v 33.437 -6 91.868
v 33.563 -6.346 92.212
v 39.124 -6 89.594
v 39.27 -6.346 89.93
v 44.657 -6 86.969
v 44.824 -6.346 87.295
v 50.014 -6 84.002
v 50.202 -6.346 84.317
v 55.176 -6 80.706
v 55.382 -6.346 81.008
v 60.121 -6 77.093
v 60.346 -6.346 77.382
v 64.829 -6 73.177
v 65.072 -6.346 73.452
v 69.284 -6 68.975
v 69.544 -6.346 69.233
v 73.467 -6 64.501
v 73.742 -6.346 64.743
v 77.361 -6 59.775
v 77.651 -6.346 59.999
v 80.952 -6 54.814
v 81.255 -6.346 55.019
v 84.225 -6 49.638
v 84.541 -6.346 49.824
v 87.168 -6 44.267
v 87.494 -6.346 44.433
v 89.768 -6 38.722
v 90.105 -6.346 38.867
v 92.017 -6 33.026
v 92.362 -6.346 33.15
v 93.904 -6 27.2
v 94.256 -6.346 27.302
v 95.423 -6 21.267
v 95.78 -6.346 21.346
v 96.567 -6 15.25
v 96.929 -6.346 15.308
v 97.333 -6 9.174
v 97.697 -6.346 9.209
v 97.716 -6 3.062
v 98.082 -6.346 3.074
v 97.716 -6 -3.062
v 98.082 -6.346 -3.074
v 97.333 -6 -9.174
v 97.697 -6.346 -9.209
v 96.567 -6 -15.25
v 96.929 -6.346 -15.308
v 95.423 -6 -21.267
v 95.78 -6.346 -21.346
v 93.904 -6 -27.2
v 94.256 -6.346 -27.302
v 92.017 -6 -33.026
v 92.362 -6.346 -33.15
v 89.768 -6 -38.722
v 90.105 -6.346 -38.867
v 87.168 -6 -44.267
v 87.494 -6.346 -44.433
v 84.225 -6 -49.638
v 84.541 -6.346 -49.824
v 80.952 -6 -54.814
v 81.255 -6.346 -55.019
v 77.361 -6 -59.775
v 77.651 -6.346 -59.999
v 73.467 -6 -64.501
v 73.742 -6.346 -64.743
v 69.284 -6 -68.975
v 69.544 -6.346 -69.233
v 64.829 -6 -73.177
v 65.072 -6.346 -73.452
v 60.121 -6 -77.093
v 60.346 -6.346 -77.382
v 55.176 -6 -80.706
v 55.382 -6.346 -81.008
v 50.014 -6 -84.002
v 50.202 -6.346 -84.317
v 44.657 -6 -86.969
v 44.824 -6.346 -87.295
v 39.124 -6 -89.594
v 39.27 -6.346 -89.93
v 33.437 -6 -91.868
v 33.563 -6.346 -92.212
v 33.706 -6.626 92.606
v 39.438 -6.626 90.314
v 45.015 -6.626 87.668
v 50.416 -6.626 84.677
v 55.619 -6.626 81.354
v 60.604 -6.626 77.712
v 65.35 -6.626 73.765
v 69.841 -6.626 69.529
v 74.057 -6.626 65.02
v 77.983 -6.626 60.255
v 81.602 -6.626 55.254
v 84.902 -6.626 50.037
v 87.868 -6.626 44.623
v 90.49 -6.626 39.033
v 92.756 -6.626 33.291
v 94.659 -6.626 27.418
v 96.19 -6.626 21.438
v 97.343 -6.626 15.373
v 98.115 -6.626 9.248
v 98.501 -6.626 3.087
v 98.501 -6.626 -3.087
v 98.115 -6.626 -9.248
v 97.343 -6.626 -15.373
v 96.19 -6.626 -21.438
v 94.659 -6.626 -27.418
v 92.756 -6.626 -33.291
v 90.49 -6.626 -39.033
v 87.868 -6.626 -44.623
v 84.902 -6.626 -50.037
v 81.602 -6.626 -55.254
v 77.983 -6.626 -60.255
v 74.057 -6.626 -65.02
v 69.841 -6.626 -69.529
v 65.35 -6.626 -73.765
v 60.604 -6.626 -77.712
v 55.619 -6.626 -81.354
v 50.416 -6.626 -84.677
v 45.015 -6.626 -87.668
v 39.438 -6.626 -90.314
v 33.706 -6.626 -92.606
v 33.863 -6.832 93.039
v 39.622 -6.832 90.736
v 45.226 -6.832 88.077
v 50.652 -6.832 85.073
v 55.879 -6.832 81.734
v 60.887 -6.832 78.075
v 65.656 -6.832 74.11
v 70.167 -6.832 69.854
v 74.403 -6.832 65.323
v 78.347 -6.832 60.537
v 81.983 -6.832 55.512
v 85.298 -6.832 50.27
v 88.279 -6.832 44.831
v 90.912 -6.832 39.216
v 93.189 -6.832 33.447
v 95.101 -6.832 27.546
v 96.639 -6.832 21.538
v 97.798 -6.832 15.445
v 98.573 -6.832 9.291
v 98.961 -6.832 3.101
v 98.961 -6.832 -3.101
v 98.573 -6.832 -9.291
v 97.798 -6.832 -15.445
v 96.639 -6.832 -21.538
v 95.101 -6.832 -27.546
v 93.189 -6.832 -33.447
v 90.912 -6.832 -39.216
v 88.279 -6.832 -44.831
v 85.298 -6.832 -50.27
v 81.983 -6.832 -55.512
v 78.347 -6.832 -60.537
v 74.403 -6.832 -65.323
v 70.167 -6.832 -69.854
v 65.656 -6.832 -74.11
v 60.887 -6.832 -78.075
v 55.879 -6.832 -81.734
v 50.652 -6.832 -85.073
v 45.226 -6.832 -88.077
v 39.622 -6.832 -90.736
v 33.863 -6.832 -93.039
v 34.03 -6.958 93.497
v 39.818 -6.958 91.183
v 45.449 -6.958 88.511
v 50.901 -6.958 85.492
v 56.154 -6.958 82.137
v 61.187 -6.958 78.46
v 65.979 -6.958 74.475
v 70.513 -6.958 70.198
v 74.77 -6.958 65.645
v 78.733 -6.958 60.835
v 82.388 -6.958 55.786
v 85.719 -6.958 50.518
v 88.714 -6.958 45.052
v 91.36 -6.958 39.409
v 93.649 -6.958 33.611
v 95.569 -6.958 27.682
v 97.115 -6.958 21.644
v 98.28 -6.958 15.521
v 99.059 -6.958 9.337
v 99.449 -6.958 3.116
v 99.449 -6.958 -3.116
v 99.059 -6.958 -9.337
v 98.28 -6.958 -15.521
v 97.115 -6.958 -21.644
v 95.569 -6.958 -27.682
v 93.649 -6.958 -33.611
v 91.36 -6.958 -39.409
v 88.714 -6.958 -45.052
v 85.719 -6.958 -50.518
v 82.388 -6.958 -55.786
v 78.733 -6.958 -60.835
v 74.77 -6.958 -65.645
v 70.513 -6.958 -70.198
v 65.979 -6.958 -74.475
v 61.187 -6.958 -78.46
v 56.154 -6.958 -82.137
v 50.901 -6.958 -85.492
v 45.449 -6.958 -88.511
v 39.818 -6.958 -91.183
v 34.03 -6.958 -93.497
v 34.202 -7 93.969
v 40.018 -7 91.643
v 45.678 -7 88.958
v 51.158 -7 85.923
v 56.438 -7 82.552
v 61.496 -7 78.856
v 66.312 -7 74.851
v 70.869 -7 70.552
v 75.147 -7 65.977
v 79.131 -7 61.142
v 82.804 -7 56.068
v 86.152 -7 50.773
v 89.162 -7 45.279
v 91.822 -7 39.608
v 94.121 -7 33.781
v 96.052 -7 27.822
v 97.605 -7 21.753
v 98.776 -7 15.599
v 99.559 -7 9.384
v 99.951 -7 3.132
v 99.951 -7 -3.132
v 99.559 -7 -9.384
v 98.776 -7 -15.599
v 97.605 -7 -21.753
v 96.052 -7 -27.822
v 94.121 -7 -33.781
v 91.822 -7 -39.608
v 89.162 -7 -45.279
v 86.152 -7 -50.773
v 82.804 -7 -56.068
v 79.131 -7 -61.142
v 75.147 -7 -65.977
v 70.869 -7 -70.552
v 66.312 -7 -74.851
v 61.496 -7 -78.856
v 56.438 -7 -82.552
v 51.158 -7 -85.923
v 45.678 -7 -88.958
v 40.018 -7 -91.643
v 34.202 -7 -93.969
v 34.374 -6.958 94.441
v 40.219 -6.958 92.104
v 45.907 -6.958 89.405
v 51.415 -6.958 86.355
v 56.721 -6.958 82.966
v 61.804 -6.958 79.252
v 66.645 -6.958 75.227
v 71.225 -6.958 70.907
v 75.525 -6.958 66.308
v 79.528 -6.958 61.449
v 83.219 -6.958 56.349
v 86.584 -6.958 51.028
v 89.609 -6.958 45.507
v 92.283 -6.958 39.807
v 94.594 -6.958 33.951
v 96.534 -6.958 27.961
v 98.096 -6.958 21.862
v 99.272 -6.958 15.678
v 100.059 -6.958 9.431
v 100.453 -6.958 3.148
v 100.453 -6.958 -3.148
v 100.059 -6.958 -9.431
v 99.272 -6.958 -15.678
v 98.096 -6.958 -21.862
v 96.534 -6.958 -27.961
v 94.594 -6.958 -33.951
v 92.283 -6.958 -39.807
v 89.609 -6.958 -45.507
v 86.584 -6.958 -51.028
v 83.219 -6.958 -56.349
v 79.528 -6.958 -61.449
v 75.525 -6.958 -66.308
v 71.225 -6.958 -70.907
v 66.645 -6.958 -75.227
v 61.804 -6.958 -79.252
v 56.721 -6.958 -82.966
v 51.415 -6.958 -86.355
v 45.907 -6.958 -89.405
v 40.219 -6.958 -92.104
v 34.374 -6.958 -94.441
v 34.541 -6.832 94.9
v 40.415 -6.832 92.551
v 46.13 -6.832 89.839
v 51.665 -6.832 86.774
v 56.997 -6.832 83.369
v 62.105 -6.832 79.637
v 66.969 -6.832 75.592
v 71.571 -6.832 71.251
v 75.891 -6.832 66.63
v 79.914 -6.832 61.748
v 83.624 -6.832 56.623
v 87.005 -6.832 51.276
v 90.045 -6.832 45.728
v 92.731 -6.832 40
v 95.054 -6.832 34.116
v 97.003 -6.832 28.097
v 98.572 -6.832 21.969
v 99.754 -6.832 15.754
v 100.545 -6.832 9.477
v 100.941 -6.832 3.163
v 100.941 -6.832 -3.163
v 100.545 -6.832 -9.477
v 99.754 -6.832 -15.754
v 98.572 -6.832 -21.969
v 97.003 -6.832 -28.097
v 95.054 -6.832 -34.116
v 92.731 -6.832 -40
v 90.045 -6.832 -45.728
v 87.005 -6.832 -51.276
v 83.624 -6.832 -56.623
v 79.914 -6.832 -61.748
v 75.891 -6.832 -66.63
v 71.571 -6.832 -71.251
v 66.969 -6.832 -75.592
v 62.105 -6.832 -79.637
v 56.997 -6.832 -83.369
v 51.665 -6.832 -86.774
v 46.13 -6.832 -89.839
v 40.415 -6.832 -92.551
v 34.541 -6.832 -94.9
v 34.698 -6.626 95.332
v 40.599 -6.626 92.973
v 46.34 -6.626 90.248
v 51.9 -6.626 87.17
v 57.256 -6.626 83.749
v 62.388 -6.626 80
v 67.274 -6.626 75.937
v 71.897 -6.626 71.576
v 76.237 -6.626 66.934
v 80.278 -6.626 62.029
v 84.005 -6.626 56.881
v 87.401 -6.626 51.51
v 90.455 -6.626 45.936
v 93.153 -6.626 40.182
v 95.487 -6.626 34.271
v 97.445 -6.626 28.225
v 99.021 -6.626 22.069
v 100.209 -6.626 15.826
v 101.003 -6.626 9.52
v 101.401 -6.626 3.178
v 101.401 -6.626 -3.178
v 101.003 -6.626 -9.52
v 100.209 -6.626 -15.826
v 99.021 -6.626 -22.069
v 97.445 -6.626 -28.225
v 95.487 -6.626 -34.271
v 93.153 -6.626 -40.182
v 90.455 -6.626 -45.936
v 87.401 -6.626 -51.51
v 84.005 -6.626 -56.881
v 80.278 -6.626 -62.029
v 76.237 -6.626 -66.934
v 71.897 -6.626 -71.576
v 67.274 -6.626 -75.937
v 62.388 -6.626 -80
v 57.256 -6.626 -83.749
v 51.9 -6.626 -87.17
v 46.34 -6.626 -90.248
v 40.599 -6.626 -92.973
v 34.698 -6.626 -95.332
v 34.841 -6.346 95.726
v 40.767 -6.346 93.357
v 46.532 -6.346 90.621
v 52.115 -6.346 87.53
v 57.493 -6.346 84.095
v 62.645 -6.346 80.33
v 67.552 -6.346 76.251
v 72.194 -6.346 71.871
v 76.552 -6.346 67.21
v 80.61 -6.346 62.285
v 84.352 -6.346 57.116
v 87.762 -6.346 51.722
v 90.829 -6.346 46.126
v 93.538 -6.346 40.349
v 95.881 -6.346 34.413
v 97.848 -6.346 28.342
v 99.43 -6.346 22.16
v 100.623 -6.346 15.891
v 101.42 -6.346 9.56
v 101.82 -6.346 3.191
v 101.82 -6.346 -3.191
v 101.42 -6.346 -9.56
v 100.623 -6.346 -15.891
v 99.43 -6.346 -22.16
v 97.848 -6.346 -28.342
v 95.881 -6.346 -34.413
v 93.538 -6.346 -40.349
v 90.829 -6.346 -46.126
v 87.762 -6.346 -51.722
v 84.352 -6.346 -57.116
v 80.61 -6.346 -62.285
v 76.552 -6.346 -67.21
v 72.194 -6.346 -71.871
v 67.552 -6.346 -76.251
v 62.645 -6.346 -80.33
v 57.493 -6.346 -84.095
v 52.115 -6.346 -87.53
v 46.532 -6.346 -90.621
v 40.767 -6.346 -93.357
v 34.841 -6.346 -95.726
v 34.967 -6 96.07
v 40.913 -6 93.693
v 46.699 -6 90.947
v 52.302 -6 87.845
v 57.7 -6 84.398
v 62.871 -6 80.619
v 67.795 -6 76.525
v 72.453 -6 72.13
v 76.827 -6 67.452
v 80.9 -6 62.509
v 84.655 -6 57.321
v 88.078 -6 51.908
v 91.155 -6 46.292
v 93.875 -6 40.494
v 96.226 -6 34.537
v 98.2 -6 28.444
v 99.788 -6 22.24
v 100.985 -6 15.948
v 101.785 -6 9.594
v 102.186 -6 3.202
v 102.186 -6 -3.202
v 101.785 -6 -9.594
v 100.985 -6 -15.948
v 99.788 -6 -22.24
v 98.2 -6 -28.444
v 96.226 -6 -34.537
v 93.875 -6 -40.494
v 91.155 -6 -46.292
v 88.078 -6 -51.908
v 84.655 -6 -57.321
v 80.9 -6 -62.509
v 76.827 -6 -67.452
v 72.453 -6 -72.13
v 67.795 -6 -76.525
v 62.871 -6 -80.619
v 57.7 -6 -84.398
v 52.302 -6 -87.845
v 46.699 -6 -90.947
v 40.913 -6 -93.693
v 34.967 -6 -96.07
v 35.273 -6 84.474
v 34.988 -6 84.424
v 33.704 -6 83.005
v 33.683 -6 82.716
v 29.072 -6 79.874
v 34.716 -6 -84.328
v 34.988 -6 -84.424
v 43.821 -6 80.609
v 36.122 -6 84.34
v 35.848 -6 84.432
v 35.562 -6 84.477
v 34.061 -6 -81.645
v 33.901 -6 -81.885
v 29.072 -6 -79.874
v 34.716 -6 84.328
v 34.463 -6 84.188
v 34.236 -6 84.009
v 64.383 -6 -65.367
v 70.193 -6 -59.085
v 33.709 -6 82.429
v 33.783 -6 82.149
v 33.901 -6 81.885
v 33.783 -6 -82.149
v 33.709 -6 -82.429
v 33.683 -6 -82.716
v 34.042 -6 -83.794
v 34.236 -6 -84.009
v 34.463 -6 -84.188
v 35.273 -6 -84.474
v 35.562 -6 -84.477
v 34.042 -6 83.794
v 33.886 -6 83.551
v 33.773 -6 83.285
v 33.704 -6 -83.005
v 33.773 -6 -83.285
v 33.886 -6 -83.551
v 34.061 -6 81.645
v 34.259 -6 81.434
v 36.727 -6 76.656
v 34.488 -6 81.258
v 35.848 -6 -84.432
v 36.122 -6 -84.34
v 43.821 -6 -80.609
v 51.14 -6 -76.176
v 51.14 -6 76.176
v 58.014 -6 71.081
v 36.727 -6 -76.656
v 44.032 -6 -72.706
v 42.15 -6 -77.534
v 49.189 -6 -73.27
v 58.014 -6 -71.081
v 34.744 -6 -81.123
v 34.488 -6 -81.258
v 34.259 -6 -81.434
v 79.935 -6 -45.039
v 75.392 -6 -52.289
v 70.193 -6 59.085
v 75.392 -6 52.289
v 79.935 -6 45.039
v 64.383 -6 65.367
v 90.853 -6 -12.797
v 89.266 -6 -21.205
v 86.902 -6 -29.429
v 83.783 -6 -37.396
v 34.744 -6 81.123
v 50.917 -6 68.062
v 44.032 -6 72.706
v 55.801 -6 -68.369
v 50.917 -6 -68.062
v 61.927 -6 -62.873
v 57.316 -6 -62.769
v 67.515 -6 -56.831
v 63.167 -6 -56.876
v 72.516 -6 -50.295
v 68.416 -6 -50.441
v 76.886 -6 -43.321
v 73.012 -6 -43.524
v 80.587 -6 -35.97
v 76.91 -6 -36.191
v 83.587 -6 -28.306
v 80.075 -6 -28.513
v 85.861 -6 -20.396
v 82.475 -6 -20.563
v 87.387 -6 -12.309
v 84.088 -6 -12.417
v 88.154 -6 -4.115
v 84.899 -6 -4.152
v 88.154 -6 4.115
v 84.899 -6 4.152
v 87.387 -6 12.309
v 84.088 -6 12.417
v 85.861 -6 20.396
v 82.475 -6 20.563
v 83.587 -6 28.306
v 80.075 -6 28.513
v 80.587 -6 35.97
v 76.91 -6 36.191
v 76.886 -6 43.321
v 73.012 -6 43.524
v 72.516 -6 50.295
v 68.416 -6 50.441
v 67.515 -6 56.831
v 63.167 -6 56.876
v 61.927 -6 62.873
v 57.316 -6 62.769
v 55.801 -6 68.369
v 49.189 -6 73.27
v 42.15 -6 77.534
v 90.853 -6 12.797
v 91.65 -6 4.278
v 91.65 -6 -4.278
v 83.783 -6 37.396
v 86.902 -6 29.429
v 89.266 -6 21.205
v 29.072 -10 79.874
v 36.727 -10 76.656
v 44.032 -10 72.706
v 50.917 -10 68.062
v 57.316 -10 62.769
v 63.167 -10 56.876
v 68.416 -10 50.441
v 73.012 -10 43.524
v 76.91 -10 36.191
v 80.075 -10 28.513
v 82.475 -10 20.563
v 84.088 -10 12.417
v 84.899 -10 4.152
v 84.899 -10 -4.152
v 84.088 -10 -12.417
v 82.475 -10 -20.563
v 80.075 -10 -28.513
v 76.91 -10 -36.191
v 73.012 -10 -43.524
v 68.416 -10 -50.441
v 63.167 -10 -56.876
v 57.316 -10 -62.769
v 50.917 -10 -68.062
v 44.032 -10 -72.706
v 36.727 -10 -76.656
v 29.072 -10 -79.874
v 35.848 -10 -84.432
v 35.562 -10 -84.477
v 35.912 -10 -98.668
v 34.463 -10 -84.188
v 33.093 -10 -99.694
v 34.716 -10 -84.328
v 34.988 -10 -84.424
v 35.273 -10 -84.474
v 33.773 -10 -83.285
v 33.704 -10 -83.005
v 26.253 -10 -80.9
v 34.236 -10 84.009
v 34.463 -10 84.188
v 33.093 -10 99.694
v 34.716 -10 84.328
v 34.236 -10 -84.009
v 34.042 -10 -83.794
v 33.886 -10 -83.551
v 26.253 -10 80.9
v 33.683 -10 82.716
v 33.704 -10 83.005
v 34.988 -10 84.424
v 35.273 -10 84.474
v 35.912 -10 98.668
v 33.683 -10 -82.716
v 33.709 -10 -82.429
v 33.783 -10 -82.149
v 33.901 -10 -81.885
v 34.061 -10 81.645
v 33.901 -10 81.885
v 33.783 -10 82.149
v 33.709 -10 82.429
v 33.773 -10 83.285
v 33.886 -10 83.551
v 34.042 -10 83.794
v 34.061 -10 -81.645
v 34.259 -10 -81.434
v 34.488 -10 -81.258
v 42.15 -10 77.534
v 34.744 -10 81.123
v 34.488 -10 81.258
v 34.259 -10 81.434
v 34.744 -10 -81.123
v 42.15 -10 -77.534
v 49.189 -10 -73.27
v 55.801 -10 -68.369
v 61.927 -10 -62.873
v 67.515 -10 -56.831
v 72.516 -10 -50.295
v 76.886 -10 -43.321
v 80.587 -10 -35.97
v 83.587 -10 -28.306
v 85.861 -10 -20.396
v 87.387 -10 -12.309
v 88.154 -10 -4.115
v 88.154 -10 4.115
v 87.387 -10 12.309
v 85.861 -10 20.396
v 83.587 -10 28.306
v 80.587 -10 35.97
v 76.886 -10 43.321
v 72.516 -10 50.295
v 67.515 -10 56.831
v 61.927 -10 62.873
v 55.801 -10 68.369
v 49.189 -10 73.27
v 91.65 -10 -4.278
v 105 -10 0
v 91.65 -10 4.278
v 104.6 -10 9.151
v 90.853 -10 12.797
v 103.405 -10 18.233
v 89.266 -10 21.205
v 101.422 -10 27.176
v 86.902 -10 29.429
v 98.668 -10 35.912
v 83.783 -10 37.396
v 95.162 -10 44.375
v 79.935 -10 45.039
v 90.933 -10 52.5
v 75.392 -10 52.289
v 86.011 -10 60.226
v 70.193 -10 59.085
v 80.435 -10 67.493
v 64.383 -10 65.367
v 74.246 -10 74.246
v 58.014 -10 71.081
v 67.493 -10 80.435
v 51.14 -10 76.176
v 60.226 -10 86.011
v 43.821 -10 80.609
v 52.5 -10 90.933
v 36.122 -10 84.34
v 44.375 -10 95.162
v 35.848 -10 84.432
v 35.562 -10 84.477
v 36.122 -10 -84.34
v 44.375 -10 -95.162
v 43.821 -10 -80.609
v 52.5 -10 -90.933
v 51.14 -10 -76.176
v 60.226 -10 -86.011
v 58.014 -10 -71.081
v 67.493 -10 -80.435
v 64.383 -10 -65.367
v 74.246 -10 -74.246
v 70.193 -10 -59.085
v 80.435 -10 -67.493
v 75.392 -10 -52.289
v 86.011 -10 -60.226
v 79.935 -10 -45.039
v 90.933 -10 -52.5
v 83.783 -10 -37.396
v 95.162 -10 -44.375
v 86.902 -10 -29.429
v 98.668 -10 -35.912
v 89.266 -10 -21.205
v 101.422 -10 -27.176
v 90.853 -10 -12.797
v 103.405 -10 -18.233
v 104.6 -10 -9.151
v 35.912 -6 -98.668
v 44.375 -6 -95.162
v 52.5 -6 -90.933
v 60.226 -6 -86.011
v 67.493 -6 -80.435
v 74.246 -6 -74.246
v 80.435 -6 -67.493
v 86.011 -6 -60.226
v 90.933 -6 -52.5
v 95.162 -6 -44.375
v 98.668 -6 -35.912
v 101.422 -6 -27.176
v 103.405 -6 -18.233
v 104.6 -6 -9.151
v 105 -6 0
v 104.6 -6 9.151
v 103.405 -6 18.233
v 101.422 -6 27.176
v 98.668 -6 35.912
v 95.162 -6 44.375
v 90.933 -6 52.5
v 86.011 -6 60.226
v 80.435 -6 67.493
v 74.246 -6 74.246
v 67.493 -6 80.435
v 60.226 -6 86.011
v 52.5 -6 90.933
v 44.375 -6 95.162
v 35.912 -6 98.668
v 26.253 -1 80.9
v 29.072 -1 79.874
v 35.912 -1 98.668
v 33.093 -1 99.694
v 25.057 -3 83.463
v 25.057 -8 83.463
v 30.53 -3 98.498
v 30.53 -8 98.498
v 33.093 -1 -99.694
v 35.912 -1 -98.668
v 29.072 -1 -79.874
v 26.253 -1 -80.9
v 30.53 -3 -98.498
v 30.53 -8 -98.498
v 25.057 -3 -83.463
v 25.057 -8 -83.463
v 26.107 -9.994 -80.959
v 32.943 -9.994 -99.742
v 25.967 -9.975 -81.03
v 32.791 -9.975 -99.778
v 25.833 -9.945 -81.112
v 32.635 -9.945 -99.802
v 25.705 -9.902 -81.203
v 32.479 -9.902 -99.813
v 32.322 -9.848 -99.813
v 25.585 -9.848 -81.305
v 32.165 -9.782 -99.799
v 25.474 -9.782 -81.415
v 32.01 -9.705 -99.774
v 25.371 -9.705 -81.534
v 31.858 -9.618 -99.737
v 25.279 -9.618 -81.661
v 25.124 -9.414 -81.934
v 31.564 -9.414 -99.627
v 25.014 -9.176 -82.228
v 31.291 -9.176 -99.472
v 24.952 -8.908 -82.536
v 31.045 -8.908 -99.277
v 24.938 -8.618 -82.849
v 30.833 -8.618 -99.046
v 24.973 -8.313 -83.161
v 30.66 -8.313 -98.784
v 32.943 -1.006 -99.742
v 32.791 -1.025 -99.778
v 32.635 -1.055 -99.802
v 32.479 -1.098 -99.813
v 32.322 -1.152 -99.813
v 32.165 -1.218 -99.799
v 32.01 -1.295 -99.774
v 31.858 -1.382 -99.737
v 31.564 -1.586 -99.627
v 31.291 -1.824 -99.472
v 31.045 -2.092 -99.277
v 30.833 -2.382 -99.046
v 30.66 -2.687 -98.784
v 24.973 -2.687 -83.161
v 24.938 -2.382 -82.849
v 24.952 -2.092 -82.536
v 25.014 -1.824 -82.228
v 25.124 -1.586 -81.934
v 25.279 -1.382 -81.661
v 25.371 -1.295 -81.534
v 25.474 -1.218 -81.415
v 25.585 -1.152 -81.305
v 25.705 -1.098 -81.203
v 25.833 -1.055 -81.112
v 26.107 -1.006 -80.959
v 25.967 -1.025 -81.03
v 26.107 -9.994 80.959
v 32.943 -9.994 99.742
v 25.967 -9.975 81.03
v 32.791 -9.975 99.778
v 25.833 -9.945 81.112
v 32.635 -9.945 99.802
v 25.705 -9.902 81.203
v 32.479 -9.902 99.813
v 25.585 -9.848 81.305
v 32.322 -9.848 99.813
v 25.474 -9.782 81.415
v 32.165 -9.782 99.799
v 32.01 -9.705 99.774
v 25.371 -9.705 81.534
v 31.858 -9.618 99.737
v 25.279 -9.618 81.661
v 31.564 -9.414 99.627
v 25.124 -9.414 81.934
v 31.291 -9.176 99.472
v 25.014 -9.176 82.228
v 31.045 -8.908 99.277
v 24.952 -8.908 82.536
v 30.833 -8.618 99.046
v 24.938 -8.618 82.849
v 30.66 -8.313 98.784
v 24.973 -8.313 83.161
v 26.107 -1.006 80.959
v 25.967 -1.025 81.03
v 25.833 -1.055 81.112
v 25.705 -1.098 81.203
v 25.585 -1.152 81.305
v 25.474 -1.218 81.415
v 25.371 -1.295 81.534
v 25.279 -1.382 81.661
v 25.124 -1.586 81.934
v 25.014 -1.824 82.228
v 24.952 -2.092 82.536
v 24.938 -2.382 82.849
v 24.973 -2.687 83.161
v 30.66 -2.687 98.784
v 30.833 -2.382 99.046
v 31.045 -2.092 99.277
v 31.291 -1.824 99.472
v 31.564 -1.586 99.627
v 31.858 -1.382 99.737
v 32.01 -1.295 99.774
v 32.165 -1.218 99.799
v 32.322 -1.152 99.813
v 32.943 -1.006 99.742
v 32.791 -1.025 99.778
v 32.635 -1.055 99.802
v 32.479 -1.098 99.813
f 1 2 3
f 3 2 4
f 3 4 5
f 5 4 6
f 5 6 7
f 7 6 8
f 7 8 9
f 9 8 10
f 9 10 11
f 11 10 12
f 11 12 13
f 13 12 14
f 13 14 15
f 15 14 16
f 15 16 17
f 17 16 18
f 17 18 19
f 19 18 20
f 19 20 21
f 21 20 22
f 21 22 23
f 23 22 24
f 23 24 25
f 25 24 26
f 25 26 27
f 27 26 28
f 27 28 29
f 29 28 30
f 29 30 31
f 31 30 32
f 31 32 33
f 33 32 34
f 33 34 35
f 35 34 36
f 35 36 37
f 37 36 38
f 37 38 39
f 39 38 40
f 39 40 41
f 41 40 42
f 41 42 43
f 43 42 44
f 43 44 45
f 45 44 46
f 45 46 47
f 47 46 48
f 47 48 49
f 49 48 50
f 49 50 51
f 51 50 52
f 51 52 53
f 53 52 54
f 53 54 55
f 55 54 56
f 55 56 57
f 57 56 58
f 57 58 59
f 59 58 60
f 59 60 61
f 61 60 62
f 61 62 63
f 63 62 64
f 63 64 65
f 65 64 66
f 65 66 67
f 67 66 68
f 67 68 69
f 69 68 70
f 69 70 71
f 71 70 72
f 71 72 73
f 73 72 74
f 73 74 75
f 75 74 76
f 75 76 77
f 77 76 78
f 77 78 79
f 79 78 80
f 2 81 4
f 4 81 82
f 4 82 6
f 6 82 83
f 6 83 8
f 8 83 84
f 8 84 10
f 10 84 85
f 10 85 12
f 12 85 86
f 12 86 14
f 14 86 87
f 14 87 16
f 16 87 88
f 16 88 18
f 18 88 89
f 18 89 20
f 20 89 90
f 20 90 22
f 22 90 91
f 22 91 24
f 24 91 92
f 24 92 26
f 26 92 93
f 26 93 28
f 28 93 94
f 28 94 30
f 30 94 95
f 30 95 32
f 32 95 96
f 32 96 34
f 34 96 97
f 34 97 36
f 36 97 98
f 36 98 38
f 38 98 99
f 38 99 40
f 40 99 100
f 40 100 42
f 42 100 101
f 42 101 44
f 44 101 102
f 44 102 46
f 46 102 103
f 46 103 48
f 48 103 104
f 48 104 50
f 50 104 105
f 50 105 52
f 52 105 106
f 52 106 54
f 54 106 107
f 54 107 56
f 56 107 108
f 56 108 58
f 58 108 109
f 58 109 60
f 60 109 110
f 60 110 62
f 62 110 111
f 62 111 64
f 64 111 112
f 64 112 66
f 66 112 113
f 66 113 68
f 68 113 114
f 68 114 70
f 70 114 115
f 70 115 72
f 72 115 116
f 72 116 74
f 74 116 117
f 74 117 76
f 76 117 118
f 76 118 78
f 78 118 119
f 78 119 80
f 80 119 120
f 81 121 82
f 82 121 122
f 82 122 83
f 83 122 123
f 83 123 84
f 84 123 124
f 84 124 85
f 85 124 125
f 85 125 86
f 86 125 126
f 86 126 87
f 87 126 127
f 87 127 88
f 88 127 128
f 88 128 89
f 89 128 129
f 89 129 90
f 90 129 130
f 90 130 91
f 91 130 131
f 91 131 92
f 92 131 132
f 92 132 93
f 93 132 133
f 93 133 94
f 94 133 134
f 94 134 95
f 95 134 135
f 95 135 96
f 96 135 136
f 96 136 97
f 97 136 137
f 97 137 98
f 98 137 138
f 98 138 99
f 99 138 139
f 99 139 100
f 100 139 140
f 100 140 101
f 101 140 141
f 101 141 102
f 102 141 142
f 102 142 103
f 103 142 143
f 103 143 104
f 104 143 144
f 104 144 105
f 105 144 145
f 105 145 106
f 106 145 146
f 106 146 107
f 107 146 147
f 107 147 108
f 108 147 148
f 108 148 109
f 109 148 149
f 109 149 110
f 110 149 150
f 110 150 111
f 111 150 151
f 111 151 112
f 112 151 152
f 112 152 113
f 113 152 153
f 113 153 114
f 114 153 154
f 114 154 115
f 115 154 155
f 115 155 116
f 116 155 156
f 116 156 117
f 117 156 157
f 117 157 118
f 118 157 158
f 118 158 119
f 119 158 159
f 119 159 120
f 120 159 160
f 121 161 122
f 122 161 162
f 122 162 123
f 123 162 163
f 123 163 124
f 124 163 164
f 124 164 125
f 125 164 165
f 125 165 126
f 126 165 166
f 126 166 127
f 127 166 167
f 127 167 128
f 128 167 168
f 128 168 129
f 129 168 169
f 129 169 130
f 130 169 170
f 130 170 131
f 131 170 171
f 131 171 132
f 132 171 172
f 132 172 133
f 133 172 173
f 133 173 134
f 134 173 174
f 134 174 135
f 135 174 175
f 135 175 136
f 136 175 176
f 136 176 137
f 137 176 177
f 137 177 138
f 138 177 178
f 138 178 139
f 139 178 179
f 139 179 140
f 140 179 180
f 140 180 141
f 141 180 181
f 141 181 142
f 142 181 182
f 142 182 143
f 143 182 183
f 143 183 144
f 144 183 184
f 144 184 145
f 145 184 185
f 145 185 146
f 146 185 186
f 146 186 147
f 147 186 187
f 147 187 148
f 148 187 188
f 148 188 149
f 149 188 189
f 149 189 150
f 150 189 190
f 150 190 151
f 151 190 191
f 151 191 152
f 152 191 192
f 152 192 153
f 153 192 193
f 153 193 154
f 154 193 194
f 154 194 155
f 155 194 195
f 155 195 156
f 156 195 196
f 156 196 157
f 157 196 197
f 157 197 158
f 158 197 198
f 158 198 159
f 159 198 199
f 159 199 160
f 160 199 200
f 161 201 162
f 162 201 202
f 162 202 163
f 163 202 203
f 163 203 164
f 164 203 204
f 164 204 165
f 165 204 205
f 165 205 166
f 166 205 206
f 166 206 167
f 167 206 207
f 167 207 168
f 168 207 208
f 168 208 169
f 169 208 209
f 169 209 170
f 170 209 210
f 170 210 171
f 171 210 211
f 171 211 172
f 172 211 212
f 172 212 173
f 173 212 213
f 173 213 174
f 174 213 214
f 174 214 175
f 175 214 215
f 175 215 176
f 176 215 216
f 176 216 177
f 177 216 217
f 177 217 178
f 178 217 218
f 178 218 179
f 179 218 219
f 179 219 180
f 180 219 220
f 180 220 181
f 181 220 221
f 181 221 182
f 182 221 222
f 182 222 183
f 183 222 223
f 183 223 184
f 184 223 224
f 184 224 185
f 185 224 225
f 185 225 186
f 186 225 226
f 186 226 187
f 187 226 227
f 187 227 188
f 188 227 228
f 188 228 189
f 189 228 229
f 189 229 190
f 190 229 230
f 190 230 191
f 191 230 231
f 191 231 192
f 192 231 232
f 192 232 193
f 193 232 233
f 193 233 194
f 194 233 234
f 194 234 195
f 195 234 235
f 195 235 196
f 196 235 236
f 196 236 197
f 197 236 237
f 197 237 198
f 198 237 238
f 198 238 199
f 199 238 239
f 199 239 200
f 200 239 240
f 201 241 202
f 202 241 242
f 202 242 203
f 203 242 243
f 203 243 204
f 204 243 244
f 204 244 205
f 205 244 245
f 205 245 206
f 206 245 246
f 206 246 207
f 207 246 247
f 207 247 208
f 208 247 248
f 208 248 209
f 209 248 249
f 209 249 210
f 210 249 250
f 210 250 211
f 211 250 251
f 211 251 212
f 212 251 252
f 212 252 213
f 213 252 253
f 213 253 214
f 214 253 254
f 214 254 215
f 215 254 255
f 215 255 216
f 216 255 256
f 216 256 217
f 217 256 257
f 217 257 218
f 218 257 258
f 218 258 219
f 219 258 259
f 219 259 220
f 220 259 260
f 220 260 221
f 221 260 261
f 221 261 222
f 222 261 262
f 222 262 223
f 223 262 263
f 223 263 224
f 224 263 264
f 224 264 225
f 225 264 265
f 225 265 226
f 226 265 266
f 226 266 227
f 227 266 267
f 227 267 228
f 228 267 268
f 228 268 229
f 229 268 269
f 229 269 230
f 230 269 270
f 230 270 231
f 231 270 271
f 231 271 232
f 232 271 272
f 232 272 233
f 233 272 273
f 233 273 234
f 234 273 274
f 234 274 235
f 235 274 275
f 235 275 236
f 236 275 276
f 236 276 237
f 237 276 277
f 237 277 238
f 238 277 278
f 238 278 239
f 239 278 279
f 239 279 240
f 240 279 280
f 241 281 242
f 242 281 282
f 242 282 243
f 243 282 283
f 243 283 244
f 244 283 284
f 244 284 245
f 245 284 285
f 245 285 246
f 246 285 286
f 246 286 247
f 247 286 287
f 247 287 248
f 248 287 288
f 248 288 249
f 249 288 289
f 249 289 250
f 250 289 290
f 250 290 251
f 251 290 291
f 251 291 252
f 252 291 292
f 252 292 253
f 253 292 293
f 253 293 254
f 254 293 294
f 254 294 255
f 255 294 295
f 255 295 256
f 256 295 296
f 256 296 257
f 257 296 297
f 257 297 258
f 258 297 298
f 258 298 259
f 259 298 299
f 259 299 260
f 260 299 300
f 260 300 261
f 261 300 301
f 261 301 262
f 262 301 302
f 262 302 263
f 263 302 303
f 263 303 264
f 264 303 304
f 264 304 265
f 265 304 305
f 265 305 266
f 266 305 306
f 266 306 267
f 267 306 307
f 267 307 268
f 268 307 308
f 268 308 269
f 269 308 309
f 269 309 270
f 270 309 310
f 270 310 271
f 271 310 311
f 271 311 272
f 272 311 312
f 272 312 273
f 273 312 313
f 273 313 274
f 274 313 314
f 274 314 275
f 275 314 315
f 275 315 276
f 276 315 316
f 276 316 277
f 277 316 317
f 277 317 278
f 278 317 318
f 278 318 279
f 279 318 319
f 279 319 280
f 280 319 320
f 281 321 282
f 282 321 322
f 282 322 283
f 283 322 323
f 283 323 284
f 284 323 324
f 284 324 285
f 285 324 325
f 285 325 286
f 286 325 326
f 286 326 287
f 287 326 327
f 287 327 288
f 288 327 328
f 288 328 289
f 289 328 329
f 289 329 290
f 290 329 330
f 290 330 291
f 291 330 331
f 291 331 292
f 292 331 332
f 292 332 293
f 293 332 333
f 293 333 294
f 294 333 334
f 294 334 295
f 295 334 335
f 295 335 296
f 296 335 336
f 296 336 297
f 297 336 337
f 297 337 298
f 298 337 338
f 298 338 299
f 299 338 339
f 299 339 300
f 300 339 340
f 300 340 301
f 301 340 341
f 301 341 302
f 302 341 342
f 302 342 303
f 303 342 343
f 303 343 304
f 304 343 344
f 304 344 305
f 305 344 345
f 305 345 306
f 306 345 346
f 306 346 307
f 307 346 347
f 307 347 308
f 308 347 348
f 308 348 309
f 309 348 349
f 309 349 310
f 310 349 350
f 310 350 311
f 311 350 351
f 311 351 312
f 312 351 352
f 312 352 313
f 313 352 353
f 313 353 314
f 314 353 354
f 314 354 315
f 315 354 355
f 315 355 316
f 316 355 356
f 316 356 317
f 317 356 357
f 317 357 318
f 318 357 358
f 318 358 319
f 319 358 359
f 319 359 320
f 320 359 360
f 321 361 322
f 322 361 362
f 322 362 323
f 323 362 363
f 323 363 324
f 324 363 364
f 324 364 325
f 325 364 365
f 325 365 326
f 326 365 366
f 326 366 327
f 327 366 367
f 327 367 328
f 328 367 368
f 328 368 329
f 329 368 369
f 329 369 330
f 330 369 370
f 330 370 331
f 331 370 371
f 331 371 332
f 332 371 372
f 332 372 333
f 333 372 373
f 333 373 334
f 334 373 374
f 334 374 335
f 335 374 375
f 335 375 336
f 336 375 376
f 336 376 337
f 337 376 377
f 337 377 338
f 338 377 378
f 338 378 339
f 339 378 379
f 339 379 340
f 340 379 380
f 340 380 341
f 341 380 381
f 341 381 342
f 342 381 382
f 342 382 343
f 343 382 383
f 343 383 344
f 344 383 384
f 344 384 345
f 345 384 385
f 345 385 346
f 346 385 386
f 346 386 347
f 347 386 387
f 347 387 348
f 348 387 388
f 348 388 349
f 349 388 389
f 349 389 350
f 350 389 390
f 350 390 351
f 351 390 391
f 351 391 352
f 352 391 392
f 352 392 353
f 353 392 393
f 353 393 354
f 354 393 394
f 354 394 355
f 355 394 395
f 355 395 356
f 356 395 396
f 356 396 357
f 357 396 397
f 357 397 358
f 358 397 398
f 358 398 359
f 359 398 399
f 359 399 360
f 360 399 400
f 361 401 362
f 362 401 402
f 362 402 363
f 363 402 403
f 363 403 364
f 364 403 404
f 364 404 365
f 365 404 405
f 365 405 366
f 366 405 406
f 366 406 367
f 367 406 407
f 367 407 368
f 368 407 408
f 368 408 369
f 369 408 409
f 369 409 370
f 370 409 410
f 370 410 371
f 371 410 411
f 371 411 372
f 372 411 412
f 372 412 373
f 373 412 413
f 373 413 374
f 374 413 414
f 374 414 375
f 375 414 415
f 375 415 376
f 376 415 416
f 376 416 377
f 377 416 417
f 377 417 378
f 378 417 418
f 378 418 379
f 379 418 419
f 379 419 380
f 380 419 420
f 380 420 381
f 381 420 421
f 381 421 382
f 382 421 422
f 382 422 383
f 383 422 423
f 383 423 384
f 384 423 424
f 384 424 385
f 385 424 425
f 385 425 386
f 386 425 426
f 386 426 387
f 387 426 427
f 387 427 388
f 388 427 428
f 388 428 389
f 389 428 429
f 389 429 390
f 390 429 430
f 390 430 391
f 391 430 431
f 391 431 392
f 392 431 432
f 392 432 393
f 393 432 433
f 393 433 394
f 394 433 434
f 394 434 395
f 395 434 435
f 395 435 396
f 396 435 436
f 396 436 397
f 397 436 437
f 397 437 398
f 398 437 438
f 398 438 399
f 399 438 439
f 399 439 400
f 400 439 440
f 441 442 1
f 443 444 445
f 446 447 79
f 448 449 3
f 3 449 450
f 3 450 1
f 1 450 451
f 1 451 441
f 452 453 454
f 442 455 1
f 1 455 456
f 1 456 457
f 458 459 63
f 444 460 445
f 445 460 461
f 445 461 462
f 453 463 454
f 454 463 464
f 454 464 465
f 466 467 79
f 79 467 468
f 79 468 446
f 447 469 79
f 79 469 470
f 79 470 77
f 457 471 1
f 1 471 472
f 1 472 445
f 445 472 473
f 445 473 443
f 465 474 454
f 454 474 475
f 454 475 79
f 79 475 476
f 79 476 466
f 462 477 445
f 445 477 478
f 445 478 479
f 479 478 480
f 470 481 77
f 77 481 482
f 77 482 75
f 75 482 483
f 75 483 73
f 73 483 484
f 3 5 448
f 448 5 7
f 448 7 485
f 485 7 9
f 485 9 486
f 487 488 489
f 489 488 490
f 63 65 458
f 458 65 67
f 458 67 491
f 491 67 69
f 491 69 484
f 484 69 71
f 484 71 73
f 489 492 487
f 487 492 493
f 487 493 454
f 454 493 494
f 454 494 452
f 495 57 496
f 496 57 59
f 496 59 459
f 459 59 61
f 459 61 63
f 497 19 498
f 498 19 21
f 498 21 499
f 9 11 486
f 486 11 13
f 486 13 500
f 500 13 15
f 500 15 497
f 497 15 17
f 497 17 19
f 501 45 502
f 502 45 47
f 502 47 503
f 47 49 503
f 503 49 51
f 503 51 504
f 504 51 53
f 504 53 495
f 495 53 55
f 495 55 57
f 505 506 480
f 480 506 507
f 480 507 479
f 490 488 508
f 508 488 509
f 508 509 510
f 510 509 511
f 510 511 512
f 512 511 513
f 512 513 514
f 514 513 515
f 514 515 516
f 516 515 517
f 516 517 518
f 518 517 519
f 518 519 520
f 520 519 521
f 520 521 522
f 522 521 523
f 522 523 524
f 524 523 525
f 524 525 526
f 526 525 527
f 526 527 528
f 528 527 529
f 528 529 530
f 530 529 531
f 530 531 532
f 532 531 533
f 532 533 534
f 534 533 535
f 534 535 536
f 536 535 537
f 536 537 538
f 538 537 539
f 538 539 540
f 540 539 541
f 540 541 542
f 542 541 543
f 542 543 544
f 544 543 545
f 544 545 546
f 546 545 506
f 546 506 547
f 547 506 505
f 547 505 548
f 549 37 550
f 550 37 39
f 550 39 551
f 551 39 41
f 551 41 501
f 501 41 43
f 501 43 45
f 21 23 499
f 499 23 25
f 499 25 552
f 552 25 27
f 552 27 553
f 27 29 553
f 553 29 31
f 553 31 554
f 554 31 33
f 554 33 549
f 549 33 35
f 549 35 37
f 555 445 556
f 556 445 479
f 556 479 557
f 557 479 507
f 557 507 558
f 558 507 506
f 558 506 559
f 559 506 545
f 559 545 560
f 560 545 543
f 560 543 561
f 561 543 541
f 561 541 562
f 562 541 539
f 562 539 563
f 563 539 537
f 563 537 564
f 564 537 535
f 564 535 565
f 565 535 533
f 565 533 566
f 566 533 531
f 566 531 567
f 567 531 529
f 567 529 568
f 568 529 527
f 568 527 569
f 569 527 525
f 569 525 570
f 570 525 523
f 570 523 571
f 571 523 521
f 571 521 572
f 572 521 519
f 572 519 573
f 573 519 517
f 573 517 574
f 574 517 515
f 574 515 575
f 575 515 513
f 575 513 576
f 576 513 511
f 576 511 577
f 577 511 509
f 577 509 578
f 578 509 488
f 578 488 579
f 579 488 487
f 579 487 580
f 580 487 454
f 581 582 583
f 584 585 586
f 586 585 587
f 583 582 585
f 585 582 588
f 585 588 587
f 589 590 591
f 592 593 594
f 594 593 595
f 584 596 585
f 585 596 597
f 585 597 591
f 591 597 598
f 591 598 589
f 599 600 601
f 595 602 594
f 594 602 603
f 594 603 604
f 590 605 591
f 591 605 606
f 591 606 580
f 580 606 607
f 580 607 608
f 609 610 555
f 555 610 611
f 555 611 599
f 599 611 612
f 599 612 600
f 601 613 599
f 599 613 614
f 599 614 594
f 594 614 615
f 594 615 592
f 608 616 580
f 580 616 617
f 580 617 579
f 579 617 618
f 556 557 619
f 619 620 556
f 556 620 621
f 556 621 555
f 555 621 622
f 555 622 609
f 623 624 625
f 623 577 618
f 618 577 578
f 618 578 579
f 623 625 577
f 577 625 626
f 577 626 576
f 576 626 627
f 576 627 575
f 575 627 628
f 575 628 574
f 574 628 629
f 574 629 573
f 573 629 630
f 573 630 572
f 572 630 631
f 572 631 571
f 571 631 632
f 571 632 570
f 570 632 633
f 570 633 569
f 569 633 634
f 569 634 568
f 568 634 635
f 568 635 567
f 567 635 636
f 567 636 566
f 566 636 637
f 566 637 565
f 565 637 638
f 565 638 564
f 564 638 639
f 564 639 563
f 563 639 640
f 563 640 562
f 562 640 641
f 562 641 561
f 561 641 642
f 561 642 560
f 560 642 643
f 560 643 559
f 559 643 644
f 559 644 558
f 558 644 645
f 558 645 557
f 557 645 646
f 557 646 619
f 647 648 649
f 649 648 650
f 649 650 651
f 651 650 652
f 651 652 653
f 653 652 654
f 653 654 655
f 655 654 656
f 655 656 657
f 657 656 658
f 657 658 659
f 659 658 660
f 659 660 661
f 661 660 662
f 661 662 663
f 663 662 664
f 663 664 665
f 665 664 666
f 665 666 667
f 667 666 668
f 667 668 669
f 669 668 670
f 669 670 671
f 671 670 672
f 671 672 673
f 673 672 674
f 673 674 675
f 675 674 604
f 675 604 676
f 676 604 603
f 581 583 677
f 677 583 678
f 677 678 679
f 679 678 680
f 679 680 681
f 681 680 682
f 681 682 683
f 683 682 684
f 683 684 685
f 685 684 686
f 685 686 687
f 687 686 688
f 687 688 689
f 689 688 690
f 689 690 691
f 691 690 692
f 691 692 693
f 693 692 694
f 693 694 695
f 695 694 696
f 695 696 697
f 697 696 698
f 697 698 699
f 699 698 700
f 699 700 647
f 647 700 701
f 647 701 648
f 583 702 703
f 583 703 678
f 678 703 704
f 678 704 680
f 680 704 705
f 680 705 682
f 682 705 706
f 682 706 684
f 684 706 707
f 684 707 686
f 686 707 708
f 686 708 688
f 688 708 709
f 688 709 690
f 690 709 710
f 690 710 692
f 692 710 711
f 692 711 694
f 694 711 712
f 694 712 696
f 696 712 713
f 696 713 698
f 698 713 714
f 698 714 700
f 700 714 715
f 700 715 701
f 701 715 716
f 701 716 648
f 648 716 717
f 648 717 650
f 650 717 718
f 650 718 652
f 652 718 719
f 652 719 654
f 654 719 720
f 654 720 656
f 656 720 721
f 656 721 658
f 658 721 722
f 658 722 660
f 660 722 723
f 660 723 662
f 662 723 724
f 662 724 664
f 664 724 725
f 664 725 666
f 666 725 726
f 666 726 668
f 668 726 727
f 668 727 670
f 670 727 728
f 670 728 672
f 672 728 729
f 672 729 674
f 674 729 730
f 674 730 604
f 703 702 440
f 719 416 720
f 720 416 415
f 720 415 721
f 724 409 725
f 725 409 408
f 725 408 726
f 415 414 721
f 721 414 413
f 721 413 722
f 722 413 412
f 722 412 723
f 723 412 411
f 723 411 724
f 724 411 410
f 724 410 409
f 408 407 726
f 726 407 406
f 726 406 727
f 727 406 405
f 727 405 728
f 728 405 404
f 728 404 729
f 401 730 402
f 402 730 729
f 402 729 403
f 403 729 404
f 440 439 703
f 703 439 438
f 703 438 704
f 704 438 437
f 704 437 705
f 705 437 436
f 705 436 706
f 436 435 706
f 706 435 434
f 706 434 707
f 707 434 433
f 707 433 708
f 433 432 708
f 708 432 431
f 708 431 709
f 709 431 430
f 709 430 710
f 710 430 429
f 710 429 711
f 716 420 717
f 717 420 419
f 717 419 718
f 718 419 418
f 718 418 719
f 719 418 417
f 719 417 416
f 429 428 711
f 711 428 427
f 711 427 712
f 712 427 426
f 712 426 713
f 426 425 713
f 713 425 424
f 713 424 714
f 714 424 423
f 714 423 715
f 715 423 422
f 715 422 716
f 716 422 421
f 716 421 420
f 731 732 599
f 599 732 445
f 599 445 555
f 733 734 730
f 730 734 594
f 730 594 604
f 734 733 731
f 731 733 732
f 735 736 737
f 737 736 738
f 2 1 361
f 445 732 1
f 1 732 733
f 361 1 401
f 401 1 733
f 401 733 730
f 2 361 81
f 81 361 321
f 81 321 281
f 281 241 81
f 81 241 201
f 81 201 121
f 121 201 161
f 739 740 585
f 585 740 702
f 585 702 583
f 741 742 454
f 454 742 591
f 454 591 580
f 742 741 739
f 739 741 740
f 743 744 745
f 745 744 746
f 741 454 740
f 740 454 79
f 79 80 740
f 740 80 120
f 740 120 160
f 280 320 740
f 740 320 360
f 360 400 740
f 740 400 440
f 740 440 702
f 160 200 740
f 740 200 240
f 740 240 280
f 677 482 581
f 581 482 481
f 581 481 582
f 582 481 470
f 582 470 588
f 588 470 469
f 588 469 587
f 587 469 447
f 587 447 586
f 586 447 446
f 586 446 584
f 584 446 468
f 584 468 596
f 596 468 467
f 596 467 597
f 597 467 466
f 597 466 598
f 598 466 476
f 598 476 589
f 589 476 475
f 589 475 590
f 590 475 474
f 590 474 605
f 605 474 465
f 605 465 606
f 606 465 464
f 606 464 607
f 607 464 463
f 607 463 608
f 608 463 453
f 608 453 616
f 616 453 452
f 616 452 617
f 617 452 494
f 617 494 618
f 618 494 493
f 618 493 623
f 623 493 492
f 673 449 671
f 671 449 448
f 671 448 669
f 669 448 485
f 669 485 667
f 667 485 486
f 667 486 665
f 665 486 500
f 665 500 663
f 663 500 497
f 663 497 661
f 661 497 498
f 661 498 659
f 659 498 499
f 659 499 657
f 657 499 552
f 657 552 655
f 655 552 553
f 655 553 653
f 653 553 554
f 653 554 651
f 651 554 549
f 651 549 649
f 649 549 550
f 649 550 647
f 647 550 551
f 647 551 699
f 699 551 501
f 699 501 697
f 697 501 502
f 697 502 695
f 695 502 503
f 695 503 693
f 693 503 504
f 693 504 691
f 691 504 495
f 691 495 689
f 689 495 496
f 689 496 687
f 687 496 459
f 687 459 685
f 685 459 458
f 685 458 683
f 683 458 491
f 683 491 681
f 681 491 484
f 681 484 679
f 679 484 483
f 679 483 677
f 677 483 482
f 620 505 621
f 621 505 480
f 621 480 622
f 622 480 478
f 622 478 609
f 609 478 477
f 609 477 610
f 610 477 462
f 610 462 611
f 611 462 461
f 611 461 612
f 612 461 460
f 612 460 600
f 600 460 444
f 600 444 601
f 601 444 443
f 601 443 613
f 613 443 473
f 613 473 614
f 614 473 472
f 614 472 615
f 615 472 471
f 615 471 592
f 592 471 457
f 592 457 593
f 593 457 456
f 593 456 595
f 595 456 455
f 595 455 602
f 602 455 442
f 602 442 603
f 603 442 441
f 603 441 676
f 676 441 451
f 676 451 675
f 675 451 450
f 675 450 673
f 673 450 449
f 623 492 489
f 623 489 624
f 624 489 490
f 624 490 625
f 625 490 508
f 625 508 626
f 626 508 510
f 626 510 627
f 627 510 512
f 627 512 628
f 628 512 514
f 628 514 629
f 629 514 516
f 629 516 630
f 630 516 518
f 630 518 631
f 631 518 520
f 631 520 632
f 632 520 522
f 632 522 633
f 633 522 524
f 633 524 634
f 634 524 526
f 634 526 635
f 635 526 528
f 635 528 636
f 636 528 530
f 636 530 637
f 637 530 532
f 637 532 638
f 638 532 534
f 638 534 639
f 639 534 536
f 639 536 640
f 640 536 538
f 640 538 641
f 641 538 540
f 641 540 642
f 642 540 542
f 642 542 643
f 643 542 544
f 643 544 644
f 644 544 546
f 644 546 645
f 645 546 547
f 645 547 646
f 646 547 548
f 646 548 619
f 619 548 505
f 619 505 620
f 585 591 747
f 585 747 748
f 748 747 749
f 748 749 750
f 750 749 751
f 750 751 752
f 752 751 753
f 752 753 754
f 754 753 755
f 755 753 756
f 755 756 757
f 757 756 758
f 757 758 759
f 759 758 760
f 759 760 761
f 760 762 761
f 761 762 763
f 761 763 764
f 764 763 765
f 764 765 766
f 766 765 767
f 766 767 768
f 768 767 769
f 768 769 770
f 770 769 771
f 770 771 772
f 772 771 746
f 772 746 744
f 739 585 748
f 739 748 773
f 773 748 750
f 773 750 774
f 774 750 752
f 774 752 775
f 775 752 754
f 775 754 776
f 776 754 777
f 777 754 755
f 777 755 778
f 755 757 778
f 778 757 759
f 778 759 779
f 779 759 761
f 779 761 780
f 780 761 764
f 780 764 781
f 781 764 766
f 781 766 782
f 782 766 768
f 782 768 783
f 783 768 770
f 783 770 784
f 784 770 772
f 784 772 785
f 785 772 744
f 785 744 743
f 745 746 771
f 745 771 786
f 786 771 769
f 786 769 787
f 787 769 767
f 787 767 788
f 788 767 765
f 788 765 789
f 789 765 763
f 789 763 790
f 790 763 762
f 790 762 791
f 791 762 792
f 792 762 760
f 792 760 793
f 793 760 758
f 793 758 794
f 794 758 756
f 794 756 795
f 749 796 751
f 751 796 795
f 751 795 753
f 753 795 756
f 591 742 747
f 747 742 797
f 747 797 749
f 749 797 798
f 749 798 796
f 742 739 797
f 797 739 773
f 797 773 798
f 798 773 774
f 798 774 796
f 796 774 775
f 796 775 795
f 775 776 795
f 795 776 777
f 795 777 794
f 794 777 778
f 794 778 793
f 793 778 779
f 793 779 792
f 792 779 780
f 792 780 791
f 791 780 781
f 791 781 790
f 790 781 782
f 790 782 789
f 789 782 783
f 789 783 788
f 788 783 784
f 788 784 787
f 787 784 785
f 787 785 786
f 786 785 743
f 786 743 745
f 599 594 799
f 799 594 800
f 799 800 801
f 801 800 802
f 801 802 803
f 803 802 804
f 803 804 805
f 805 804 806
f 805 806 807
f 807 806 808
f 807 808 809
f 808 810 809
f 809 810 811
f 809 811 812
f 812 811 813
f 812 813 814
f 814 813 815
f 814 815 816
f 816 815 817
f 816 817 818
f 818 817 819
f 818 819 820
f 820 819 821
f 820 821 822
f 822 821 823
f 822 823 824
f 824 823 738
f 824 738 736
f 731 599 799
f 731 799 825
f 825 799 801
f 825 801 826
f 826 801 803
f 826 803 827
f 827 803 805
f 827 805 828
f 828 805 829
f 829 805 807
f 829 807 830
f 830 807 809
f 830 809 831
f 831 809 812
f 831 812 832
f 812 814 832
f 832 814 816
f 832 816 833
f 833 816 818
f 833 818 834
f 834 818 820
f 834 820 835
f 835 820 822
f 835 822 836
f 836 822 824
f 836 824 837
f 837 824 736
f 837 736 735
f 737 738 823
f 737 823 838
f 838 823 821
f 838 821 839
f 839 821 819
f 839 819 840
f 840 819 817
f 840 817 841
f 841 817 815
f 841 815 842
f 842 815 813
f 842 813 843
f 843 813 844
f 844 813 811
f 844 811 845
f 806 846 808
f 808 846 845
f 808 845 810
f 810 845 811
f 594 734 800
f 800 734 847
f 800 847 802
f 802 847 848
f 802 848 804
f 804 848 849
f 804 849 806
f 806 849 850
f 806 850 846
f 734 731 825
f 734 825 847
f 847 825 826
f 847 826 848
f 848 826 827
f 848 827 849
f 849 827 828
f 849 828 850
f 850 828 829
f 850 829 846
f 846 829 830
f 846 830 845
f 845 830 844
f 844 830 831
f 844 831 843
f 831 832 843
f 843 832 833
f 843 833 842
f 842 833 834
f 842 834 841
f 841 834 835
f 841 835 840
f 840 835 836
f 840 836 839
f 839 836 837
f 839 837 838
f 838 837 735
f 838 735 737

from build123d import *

# Parameters (mm, degrees)
REVOLVE_1_ANGLE     = 140
SKETCH_3_W          = 20
SKETCH_3_H          = 9
EXTRUDE_1_DEPTH     = 5
SKETCH_4_W          = 20
SKETCH_4_H          = 9
EXTRUDE_2_DEPTH     = 5
CUT_EXTRUDE_1_DEPTH = 5
FILLET_1_R          = 2


with BuildPart() as part:
    # 草图2 → 旋转1 (revolve, symmetric)
    with BuildSketch(Plane.XY) as revolve_1_sk:
        with BuildLine():
            ThreePointArc((102.236067977, -6), (100, -7), (97.763932023, -6))
            Line((97.763932023, -6), (85, -6))
            Line((85, -6), (85, -10))
            Line((85, -10), (105, -10))
            Line((105, -10), (105, -6))
            Line((105, -6), (102.236067977, -6))
        make_face()
    revolve(axis=Axis((0, 24.366902053, 0), (0, -1, 0)), revolution_arc=REVOLVE_1_ANGLE / 2)
    revolve(revolve_1_sk.sketch, axis=Axis((0, 24.366902053, 0), (0, 1, 0)), revolution_arc=REVOLVE_1_ANGLE / 2)

    # 草图3 → 凸台-拉伸1 (add)
    with BuildSketch(Plane(origin=(0, 0, 0), x_dir=(0.34202014332566616, 0, 0.9396926207859094), z_dir=(-0.9396926207859093, 0, 0.3420201433256661))):
        with Locations((95, -5.5)):
            Rectangle(SKETCH_3_W, SKETCH_3_H)
    extrude(amount=EXTRUDE_1_DEPTH)

    # 草图4 → 凸台-拉伸2 (add)
    with BuildSketch(Plane(origin=(0, 0, 0), x_dir=(-0.34202014332566616, 0, 0.9396926207859094), z_dir=(-0.9396926207859094, 0, -0.34202014332566616))):
        with Locations((-95, -5.5)):
            Rectangle(SKETCH_4_W, SKETCH_4_H)
    extrude(amount=EXTRUDE_2_DEPTH)

    # 草图5 → 切除-拉伸1 (cut)
    with BuildSketch(Plane(origin=(0, -6, 0), x_dir=(1, 0, 0), z_dir=(0, 1, 0))):
        with BuildLine():
            ThreePointArc((34.743766956, 81.122950869), (88.25, -6.1e-08), (34.743766843, -81.122950917))
            ThreePointArc((34.743766843, -81.122950917), (33.82406612, -83.420591403), (36.121706789, -84.340291668))
            ThreePointArc((36.121706789, -84.340291668), (91.75, 4e-08), (36.121706715, 84.3402917))
            ThreePointArc((36.121706715, 84.3402917), (33.82406608, 83.42059131), (34.743766956, 81.122950869))
        make_face()
    extrude(amount=-CUT_EXTRUDE_1_DEPTH, mode=Mode.SUBTRACT)

    # 圆角1
    fillet_1_edges = [part.edges().sort_by_distance(p)[0] for p in [
        (24.373249079, -5.5, 81.583973483),
        (31.213651945, -5.5, 100.377825899),
        (27.793450512, -1, 90.980899691),
        (27.793450512, -10, 90.980899691),
        (31.213651945, -5.5, -100.377825899),
        (24.373249079, -5.5, -81.583973483),
        (27.793450512, -1, -90.980899691),
        (27.793450512, -10, -90.980899691),
    ]]
    fillet(fillet_1_edges, radius=FILLET_1_R)


solid = part.part
